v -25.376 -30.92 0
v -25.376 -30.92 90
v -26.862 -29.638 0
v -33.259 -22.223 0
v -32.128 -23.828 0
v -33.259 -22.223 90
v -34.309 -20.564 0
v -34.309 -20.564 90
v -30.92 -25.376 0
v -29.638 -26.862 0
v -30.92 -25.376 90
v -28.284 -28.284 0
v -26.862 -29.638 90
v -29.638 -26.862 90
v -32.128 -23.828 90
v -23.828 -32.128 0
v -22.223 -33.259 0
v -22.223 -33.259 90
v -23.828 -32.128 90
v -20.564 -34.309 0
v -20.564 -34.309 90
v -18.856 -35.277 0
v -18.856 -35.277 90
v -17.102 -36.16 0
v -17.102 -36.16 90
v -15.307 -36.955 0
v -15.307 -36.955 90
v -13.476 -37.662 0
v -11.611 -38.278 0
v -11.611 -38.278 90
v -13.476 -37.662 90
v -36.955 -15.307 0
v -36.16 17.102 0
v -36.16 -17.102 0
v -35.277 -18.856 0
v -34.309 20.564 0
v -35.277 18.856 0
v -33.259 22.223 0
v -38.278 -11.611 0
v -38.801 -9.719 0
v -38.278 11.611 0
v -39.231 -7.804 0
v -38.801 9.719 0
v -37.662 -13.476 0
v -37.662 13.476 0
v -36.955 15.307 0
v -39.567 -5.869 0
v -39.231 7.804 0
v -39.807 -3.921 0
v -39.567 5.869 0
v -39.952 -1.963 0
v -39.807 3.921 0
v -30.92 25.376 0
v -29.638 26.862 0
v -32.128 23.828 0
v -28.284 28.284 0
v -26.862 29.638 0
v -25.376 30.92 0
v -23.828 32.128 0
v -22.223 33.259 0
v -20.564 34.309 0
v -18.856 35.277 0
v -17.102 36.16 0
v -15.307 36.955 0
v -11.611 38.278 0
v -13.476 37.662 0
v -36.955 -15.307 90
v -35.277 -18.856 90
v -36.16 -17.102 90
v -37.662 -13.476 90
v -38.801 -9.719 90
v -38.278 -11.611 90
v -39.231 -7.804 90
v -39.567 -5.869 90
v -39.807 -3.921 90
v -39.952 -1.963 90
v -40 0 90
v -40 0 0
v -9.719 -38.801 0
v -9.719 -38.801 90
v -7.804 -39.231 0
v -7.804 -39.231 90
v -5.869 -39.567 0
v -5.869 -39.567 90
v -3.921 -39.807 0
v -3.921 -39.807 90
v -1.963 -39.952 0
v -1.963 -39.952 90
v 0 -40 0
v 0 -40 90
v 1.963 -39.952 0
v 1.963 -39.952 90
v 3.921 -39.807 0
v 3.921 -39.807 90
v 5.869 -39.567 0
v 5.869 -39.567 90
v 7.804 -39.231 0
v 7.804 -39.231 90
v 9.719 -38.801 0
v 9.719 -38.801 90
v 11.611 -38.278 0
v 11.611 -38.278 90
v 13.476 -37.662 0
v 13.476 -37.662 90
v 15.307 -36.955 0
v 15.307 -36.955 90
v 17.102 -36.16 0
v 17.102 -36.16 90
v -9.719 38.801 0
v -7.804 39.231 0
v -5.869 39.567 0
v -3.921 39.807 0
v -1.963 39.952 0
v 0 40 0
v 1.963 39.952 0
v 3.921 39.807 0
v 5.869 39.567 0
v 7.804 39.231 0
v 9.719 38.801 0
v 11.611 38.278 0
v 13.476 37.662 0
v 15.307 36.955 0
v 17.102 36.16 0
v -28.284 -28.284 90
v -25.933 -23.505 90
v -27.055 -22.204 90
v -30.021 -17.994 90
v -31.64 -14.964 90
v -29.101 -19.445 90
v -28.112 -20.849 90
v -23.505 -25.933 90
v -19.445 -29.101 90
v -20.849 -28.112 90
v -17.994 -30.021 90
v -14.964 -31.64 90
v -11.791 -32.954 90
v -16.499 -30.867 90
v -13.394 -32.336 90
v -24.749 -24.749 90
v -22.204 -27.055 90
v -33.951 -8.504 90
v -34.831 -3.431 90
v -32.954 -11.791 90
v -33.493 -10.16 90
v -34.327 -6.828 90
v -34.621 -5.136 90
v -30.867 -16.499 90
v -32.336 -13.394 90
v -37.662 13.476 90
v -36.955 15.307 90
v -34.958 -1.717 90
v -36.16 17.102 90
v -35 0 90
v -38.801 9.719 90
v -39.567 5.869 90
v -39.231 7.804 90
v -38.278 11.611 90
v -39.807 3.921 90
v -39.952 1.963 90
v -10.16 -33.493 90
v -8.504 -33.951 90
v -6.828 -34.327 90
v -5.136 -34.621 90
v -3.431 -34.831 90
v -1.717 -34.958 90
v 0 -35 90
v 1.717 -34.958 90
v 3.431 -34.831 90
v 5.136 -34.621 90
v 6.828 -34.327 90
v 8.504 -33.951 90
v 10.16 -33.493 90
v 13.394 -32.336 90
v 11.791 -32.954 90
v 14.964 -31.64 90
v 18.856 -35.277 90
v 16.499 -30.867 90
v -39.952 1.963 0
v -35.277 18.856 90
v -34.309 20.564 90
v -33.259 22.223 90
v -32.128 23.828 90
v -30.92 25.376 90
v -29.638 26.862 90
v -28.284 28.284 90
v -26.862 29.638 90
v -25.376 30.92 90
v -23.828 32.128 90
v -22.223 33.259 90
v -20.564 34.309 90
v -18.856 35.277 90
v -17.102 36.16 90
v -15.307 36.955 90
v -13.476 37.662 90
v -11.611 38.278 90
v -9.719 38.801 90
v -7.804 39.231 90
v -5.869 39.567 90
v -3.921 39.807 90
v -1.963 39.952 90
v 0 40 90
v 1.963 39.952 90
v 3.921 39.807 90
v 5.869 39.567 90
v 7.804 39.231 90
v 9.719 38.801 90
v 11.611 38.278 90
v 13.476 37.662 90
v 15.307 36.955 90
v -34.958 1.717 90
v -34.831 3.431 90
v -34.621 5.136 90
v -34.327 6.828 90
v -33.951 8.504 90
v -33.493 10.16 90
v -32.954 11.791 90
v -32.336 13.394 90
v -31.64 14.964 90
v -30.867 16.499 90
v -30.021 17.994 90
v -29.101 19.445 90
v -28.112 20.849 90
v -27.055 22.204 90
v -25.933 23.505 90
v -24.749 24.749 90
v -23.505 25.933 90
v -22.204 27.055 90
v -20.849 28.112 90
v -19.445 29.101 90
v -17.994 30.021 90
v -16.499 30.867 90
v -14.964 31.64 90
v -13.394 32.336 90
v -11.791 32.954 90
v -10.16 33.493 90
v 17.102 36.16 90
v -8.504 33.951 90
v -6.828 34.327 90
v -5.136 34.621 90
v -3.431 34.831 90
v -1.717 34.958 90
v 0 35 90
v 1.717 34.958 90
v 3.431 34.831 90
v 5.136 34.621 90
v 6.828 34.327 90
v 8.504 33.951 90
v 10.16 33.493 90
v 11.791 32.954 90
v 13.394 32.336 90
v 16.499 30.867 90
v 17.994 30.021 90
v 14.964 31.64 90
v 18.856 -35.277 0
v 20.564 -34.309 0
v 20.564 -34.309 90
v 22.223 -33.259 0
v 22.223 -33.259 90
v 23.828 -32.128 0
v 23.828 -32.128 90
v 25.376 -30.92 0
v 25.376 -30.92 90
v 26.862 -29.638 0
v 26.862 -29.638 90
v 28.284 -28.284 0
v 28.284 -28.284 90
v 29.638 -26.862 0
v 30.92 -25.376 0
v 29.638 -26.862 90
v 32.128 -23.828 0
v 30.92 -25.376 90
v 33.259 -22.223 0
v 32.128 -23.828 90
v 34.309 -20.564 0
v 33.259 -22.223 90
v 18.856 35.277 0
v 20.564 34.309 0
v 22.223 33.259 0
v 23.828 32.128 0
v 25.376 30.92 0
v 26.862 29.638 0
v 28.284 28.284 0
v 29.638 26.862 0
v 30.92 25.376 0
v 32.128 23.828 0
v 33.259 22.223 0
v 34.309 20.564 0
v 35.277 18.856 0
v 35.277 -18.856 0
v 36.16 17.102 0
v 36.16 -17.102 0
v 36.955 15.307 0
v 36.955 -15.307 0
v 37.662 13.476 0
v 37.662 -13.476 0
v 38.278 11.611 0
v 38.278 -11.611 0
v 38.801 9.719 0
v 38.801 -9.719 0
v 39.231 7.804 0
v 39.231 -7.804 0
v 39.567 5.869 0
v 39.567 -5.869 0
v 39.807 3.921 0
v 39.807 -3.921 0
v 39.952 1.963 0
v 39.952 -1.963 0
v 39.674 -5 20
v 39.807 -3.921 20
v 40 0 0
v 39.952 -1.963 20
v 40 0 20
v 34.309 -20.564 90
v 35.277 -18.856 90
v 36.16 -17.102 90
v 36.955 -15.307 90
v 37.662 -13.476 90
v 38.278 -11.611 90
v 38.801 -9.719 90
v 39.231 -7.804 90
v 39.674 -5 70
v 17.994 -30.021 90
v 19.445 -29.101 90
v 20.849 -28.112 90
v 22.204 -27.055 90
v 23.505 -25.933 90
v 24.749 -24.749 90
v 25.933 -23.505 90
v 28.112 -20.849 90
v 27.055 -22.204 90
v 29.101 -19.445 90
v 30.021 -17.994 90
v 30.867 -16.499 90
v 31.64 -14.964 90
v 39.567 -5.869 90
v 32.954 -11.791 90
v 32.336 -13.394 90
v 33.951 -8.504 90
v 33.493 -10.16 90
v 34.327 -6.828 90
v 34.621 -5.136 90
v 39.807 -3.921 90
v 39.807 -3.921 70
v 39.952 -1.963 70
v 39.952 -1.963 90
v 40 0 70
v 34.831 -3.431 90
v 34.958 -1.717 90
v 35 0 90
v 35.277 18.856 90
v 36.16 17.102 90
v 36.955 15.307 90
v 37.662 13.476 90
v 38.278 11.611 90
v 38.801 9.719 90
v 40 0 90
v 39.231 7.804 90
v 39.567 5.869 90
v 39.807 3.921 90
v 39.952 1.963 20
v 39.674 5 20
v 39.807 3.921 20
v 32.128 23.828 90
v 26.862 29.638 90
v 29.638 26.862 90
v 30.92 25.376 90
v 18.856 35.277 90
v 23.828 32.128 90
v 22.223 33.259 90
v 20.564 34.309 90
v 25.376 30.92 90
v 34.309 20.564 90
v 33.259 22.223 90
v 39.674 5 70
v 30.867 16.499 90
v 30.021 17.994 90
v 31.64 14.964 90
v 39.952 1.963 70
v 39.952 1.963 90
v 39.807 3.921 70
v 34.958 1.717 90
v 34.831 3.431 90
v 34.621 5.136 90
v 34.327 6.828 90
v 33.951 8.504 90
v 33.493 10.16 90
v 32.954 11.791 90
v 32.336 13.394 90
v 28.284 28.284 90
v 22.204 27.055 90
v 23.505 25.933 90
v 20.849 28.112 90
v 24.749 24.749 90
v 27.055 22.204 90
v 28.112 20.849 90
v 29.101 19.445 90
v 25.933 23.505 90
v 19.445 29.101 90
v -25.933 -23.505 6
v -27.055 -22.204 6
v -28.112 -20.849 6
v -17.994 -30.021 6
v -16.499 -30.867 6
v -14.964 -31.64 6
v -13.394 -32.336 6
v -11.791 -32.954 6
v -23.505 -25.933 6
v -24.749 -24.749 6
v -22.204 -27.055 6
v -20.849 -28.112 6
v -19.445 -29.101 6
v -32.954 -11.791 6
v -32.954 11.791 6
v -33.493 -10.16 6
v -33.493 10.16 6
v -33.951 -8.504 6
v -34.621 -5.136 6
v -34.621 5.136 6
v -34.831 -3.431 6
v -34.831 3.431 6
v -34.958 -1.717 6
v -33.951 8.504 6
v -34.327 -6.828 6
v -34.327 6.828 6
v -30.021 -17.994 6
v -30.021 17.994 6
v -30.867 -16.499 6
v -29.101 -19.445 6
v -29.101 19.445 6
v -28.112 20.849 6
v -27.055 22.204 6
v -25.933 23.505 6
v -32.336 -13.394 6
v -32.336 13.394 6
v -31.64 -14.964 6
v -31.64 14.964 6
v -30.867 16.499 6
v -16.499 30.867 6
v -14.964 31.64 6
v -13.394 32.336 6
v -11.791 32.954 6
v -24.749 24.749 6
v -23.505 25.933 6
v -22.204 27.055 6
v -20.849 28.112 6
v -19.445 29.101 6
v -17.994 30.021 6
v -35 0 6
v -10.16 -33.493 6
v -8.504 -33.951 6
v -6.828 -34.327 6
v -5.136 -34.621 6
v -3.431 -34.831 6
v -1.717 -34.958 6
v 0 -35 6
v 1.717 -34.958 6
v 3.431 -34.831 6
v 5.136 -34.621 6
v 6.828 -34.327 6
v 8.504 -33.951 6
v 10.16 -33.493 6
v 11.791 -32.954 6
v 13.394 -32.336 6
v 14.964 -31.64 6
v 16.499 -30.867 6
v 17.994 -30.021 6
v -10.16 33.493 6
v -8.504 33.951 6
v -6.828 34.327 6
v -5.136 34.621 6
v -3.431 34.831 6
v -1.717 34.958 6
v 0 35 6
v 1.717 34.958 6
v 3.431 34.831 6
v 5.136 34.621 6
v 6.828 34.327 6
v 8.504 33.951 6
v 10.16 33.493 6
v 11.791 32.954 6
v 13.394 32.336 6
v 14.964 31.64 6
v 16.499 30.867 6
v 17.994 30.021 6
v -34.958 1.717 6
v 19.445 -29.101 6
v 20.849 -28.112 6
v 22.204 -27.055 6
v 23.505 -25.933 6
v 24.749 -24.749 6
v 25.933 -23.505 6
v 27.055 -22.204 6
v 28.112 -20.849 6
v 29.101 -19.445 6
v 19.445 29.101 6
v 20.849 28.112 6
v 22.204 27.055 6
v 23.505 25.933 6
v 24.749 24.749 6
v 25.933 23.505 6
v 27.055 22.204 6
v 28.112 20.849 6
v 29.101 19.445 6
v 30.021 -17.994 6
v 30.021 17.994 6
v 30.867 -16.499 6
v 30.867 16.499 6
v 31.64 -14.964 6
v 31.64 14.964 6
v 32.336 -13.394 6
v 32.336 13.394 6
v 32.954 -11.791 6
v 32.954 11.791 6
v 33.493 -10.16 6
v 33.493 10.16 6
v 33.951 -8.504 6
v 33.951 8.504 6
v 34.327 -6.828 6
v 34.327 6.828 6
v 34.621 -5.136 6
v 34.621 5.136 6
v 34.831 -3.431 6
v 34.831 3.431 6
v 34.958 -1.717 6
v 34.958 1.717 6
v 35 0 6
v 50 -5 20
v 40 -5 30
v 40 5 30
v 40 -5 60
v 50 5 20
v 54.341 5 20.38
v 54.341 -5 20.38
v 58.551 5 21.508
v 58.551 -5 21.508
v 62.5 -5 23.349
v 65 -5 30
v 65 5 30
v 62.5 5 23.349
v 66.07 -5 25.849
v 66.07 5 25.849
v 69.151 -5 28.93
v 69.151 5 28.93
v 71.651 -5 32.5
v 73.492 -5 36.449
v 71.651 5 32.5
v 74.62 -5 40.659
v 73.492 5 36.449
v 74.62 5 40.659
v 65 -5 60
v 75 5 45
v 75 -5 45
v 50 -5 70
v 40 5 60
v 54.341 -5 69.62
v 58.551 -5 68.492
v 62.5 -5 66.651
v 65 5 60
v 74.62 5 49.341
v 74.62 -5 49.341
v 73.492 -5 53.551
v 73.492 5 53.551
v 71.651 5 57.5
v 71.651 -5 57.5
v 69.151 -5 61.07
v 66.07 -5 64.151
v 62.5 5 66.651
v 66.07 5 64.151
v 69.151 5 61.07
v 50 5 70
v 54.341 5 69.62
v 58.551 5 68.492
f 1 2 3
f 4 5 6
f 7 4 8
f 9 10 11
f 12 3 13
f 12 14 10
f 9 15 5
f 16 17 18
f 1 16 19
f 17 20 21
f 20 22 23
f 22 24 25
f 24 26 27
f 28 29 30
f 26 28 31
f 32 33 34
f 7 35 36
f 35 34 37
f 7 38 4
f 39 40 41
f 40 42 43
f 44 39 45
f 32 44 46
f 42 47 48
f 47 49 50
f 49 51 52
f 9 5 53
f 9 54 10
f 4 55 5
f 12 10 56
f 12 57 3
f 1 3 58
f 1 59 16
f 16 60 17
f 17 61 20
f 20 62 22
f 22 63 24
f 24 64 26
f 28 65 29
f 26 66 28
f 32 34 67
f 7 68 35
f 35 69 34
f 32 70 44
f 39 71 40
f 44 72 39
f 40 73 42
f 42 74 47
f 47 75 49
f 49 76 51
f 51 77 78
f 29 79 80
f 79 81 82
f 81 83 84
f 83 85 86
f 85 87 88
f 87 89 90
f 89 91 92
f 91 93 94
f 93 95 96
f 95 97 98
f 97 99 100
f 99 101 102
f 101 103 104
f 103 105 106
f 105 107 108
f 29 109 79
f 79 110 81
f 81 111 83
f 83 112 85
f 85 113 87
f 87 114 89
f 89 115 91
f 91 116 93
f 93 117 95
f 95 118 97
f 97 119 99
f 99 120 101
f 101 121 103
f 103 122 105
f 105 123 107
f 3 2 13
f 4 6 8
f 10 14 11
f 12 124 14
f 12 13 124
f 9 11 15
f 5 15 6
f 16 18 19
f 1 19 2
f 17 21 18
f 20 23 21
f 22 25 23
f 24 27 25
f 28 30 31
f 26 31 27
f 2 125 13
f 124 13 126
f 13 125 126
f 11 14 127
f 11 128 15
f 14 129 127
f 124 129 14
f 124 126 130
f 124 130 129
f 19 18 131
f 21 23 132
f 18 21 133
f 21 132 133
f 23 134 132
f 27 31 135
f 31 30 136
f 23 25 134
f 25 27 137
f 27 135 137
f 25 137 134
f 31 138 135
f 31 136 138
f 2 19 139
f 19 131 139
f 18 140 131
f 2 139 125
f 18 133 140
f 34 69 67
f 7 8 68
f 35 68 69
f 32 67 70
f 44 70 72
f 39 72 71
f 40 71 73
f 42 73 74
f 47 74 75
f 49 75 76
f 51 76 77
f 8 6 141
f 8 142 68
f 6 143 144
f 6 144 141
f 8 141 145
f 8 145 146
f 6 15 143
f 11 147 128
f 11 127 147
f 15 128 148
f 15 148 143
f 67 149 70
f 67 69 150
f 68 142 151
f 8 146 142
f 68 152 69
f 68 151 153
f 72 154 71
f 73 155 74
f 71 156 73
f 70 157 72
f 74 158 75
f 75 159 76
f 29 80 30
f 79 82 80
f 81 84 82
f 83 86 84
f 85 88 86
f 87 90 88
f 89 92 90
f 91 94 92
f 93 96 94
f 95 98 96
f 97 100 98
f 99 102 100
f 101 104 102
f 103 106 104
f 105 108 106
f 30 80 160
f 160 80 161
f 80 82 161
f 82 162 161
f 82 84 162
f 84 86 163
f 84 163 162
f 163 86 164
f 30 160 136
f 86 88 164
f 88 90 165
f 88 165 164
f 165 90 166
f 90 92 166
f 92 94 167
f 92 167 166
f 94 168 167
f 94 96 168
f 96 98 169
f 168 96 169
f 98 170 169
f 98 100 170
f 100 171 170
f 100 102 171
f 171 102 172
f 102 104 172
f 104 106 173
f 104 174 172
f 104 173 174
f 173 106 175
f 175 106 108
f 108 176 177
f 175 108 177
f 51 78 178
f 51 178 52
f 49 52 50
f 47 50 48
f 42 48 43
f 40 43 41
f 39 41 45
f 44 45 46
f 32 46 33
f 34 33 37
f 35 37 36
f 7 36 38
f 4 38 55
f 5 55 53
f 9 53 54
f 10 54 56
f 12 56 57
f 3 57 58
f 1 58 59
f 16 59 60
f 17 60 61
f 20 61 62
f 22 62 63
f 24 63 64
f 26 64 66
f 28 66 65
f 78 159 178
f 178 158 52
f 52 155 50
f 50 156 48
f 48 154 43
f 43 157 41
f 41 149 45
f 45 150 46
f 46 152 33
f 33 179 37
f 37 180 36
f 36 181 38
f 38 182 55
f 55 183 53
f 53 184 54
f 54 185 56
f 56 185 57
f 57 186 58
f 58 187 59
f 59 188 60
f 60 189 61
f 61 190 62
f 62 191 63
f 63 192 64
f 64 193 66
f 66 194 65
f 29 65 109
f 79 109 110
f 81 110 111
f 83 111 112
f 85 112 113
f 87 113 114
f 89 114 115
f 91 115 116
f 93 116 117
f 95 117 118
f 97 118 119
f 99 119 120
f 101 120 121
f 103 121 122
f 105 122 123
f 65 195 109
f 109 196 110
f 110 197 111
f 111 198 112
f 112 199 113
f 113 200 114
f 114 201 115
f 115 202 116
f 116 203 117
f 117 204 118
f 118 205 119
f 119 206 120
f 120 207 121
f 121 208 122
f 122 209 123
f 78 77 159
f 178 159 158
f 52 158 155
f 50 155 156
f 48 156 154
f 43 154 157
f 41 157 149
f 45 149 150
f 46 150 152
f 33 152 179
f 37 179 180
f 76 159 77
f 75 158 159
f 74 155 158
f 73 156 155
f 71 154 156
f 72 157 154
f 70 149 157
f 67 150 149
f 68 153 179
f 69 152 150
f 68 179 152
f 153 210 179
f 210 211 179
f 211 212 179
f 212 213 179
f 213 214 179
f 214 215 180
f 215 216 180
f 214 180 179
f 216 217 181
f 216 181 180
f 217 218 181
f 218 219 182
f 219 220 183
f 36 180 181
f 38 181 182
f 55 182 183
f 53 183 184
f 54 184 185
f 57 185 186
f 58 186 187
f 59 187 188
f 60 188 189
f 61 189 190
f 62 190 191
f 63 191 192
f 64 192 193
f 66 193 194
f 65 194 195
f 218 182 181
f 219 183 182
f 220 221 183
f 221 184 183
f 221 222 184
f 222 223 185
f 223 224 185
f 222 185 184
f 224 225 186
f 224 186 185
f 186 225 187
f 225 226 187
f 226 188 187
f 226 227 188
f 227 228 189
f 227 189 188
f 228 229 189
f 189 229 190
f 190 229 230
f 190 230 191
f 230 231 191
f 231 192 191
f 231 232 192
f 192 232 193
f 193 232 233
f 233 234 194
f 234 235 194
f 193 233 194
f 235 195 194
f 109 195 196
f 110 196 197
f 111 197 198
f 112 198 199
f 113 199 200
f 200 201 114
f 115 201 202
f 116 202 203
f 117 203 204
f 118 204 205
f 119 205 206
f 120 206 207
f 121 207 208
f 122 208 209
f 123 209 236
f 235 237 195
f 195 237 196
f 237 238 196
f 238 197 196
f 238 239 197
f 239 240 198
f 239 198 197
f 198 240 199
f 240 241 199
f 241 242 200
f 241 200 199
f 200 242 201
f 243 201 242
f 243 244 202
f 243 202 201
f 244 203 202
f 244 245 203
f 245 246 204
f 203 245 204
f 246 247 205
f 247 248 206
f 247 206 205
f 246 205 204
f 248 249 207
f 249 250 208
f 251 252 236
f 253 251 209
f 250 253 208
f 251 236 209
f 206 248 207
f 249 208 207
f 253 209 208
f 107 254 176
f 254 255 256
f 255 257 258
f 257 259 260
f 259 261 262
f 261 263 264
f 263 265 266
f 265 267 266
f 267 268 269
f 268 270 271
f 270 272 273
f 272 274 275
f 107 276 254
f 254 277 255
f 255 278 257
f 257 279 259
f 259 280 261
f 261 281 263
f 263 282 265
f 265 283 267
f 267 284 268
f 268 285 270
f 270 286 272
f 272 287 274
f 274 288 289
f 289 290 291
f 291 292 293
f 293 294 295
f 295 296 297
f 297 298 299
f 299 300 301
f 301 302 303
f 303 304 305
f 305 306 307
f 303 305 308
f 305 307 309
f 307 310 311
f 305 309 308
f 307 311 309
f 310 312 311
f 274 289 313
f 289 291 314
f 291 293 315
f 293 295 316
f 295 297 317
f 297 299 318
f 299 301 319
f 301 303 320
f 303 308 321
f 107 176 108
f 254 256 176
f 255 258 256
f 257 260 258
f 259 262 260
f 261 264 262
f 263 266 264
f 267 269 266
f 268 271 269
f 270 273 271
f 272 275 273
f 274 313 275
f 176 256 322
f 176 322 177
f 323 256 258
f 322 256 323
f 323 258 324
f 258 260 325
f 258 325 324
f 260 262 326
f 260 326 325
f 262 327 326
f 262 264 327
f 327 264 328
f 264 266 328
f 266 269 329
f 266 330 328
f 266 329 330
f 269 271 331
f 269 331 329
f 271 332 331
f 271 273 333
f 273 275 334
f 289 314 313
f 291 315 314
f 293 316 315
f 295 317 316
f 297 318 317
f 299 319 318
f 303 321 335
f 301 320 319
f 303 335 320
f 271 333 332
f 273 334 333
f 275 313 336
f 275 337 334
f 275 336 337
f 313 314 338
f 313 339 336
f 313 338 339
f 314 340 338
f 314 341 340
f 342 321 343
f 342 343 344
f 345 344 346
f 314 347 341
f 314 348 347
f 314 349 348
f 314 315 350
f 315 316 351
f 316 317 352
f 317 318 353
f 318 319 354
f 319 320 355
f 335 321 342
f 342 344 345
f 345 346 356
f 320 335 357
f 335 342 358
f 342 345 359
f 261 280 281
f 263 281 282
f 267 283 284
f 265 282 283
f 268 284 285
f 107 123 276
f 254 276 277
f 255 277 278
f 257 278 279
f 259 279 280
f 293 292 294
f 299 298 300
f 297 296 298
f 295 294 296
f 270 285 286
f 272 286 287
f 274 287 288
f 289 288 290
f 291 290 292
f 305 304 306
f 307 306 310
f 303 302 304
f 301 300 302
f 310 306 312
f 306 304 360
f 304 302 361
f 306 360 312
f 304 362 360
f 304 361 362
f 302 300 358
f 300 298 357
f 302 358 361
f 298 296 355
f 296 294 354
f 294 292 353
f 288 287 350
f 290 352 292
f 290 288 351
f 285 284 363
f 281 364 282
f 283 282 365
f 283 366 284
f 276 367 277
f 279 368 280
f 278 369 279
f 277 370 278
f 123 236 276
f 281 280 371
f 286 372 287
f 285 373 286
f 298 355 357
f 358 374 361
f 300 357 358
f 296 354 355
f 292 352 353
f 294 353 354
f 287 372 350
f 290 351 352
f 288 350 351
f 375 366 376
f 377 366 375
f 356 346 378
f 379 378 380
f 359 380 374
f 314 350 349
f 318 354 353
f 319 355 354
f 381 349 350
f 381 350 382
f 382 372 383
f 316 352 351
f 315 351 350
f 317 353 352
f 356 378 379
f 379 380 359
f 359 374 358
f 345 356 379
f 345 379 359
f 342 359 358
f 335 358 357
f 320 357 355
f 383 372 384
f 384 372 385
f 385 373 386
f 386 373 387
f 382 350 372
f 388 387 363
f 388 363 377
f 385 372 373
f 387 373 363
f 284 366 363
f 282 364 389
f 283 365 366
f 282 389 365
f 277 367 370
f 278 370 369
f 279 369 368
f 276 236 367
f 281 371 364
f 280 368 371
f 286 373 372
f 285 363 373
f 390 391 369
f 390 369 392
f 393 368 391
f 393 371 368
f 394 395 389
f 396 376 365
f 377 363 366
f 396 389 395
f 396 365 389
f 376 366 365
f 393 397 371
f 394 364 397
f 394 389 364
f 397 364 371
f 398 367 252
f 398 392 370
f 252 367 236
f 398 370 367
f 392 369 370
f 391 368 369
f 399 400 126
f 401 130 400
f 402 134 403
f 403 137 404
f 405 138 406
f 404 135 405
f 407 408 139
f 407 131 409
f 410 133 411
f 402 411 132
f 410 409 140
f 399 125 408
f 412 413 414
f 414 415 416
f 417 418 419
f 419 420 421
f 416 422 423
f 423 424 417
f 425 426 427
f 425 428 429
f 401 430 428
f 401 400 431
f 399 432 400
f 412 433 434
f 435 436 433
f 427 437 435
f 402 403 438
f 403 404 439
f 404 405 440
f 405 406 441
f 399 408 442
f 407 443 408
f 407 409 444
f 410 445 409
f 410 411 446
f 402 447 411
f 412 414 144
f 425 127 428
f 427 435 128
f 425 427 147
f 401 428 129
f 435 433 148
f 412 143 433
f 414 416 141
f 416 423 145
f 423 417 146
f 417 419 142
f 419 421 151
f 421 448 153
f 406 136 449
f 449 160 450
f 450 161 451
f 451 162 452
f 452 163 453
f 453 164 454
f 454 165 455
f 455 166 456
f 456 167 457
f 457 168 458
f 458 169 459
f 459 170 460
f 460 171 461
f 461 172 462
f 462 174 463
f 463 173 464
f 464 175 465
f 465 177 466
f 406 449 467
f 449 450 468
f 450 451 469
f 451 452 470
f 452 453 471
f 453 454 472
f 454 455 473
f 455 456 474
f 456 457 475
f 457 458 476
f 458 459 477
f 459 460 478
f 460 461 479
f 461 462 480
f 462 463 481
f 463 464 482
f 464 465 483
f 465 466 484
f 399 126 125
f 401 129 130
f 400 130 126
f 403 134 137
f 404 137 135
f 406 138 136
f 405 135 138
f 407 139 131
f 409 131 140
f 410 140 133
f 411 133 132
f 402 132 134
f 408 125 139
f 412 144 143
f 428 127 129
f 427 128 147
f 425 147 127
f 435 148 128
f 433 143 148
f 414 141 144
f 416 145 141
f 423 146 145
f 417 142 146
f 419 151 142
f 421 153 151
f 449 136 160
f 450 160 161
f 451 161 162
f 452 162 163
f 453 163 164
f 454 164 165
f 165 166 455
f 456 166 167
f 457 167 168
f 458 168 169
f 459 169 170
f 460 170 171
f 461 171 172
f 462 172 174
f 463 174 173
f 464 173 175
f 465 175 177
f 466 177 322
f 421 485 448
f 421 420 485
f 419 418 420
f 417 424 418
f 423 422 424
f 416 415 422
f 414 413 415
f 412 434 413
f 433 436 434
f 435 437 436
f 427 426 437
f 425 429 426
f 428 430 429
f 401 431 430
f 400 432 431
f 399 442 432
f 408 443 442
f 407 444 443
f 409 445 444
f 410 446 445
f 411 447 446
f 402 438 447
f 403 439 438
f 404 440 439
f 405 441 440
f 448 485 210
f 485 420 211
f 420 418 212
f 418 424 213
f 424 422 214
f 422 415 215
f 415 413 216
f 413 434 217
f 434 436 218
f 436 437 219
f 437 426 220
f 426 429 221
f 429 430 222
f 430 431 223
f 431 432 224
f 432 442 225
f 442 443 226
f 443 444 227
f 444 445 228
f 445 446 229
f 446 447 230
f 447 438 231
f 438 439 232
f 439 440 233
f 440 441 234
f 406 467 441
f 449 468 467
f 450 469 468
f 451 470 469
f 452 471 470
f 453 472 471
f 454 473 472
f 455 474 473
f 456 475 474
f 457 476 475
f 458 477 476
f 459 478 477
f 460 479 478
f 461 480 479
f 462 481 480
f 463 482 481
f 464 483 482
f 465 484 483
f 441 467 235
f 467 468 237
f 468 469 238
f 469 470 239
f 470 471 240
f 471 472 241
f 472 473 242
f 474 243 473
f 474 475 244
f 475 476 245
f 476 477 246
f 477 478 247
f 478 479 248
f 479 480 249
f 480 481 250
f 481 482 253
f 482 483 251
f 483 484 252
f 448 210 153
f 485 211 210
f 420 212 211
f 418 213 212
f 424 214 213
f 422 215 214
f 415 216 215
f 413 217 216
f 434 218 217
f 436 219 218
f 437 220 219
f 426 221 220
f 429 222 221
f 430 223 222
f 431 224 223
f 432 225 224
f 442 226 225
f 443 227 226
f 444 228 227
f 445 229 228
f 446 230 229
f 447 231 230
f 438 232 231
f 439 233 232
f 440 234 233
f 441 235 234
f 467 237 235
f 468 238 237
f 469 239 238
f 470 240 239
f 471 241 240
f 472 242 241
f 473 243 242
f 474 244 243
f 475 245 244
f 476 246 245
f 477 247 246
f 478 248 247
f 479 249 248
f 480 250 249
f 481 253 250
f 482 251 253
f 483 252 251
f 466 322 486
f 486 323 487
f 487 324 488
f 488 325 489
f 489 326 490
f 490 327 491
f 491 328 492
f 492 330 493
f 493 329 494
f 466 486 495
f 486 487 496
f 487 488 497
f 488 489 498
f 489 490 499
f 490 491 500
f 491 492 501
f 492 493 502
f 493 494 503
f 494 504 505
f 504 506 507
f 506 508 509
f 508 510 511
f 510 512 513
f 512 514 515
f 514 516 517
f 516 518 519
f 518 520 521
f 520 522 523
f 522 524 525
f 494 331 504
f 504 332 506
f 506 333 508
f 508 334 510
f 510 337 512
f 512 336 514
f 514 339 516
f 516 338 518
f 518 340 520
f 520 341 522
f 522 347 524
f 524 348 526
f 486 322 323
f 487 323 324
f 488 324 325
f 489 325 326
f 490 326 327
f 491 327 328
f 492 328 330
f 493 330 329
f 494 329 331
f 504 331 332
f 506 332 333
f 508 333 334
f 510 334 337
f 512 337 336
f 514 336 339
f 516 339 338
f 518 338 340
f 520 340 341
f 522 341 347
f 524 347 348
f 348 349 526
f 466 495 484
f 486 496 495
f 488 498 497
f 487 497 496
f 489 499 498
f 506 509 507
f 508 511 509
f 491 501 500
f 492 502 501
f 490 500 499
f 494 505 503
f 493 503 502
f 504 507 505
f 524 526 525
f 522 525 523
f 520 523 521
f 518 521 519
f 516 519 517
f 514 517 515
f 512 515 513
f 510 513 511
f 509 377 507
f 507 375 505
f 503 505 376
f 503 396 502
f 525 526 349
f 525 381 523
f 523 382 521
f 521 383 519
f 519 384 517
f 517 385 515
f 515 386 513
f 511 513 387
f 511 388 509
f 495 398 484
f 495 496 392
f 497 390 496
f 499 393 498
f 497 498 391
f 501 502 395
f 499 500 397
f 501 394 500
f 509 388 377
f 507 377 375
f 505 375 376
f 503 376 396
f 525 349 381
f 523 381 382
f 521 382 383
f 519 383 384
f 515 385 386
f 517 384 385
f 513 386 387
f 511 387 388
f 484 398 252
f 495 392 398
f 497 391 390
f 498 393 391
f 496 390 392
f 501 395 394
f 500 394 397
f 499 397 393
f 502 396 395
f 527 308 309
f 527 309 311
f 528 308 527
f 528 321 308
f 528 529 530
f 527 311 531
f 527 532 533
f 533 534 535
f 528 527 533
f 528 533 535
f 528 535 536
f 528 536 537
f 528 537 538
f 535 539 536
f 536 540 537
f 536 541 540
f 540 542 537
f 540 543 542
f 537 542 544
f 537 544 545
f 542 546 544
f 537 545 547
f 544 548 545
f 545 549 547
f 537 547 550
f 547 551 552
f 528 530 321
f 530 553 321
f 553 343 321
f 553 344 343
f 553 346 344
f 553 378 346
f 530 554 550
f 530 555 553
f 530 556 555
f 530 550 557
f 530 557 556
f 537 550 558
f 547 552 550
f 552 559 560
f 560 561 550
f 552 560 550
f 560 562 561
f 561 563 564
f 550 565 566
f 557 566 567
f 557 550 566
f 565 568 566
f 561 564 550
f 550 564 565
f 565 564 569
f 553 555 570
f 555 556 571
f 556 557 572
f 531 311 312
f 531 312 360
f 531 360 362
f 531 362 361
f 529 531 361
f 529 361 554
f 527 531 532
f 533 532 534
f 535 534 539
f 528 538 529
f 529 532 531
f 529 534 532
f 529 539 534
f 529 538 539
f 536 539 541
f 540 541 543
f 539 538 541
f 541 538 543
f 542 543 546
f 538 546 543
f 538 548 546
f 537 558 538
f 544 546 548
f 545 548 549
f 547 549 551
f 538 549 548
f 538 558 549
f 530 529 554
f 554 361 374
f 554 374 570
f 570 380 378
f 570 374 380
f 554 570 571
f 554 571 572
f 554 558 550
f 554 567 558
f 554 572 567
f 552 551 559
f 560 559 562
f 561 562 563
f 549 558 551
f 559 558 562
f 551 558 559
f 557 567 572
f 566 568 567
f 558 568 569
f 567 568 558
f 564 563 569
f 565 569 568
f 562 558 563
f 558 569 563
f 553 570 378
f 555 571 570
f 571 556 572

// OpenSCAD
$fn = 128;

outer_diameter = 80;
inner_diameter = 70;
height = 90;
bottom_thickness = 6;

outer_radius = outer_diameter / 2;
inner_radius = inner_diameter / 2;

handle_thickness = 10;

// マグ本体
module mug_body() {
    difference() {
        cylinder(
            r = outer_radius,
            h = height
        );

        translate([0, 0, bottom_thickness])
            cylinder(
                r = inner_radius,
                h = height - bottom_thickness + 1
            );
    }
}

// +X方向にのみ配置するD字型取手
module handle() {
    rotate([90, 0, 0])
        linear_extrude(
            height = handle_thickness,
            center = true
        ) {
            difference() {
                polygon([
                    [35, 20],
                    [50, 20],
                    for (a = [-90 : 10 : 90])
                        [50 + 25 * cos(a), 45 + 25 * sin(a)],
                    [35, 70]
                ]);

                // 内側空間：幅25mm × 高さ30mm
                polygon([
                    [40, 30],
                    [65, 30],
                    [65, 60],
                    [40, 60]
                ]);
            }
        }
}

union() {
    mug_body();
    handle();
}
